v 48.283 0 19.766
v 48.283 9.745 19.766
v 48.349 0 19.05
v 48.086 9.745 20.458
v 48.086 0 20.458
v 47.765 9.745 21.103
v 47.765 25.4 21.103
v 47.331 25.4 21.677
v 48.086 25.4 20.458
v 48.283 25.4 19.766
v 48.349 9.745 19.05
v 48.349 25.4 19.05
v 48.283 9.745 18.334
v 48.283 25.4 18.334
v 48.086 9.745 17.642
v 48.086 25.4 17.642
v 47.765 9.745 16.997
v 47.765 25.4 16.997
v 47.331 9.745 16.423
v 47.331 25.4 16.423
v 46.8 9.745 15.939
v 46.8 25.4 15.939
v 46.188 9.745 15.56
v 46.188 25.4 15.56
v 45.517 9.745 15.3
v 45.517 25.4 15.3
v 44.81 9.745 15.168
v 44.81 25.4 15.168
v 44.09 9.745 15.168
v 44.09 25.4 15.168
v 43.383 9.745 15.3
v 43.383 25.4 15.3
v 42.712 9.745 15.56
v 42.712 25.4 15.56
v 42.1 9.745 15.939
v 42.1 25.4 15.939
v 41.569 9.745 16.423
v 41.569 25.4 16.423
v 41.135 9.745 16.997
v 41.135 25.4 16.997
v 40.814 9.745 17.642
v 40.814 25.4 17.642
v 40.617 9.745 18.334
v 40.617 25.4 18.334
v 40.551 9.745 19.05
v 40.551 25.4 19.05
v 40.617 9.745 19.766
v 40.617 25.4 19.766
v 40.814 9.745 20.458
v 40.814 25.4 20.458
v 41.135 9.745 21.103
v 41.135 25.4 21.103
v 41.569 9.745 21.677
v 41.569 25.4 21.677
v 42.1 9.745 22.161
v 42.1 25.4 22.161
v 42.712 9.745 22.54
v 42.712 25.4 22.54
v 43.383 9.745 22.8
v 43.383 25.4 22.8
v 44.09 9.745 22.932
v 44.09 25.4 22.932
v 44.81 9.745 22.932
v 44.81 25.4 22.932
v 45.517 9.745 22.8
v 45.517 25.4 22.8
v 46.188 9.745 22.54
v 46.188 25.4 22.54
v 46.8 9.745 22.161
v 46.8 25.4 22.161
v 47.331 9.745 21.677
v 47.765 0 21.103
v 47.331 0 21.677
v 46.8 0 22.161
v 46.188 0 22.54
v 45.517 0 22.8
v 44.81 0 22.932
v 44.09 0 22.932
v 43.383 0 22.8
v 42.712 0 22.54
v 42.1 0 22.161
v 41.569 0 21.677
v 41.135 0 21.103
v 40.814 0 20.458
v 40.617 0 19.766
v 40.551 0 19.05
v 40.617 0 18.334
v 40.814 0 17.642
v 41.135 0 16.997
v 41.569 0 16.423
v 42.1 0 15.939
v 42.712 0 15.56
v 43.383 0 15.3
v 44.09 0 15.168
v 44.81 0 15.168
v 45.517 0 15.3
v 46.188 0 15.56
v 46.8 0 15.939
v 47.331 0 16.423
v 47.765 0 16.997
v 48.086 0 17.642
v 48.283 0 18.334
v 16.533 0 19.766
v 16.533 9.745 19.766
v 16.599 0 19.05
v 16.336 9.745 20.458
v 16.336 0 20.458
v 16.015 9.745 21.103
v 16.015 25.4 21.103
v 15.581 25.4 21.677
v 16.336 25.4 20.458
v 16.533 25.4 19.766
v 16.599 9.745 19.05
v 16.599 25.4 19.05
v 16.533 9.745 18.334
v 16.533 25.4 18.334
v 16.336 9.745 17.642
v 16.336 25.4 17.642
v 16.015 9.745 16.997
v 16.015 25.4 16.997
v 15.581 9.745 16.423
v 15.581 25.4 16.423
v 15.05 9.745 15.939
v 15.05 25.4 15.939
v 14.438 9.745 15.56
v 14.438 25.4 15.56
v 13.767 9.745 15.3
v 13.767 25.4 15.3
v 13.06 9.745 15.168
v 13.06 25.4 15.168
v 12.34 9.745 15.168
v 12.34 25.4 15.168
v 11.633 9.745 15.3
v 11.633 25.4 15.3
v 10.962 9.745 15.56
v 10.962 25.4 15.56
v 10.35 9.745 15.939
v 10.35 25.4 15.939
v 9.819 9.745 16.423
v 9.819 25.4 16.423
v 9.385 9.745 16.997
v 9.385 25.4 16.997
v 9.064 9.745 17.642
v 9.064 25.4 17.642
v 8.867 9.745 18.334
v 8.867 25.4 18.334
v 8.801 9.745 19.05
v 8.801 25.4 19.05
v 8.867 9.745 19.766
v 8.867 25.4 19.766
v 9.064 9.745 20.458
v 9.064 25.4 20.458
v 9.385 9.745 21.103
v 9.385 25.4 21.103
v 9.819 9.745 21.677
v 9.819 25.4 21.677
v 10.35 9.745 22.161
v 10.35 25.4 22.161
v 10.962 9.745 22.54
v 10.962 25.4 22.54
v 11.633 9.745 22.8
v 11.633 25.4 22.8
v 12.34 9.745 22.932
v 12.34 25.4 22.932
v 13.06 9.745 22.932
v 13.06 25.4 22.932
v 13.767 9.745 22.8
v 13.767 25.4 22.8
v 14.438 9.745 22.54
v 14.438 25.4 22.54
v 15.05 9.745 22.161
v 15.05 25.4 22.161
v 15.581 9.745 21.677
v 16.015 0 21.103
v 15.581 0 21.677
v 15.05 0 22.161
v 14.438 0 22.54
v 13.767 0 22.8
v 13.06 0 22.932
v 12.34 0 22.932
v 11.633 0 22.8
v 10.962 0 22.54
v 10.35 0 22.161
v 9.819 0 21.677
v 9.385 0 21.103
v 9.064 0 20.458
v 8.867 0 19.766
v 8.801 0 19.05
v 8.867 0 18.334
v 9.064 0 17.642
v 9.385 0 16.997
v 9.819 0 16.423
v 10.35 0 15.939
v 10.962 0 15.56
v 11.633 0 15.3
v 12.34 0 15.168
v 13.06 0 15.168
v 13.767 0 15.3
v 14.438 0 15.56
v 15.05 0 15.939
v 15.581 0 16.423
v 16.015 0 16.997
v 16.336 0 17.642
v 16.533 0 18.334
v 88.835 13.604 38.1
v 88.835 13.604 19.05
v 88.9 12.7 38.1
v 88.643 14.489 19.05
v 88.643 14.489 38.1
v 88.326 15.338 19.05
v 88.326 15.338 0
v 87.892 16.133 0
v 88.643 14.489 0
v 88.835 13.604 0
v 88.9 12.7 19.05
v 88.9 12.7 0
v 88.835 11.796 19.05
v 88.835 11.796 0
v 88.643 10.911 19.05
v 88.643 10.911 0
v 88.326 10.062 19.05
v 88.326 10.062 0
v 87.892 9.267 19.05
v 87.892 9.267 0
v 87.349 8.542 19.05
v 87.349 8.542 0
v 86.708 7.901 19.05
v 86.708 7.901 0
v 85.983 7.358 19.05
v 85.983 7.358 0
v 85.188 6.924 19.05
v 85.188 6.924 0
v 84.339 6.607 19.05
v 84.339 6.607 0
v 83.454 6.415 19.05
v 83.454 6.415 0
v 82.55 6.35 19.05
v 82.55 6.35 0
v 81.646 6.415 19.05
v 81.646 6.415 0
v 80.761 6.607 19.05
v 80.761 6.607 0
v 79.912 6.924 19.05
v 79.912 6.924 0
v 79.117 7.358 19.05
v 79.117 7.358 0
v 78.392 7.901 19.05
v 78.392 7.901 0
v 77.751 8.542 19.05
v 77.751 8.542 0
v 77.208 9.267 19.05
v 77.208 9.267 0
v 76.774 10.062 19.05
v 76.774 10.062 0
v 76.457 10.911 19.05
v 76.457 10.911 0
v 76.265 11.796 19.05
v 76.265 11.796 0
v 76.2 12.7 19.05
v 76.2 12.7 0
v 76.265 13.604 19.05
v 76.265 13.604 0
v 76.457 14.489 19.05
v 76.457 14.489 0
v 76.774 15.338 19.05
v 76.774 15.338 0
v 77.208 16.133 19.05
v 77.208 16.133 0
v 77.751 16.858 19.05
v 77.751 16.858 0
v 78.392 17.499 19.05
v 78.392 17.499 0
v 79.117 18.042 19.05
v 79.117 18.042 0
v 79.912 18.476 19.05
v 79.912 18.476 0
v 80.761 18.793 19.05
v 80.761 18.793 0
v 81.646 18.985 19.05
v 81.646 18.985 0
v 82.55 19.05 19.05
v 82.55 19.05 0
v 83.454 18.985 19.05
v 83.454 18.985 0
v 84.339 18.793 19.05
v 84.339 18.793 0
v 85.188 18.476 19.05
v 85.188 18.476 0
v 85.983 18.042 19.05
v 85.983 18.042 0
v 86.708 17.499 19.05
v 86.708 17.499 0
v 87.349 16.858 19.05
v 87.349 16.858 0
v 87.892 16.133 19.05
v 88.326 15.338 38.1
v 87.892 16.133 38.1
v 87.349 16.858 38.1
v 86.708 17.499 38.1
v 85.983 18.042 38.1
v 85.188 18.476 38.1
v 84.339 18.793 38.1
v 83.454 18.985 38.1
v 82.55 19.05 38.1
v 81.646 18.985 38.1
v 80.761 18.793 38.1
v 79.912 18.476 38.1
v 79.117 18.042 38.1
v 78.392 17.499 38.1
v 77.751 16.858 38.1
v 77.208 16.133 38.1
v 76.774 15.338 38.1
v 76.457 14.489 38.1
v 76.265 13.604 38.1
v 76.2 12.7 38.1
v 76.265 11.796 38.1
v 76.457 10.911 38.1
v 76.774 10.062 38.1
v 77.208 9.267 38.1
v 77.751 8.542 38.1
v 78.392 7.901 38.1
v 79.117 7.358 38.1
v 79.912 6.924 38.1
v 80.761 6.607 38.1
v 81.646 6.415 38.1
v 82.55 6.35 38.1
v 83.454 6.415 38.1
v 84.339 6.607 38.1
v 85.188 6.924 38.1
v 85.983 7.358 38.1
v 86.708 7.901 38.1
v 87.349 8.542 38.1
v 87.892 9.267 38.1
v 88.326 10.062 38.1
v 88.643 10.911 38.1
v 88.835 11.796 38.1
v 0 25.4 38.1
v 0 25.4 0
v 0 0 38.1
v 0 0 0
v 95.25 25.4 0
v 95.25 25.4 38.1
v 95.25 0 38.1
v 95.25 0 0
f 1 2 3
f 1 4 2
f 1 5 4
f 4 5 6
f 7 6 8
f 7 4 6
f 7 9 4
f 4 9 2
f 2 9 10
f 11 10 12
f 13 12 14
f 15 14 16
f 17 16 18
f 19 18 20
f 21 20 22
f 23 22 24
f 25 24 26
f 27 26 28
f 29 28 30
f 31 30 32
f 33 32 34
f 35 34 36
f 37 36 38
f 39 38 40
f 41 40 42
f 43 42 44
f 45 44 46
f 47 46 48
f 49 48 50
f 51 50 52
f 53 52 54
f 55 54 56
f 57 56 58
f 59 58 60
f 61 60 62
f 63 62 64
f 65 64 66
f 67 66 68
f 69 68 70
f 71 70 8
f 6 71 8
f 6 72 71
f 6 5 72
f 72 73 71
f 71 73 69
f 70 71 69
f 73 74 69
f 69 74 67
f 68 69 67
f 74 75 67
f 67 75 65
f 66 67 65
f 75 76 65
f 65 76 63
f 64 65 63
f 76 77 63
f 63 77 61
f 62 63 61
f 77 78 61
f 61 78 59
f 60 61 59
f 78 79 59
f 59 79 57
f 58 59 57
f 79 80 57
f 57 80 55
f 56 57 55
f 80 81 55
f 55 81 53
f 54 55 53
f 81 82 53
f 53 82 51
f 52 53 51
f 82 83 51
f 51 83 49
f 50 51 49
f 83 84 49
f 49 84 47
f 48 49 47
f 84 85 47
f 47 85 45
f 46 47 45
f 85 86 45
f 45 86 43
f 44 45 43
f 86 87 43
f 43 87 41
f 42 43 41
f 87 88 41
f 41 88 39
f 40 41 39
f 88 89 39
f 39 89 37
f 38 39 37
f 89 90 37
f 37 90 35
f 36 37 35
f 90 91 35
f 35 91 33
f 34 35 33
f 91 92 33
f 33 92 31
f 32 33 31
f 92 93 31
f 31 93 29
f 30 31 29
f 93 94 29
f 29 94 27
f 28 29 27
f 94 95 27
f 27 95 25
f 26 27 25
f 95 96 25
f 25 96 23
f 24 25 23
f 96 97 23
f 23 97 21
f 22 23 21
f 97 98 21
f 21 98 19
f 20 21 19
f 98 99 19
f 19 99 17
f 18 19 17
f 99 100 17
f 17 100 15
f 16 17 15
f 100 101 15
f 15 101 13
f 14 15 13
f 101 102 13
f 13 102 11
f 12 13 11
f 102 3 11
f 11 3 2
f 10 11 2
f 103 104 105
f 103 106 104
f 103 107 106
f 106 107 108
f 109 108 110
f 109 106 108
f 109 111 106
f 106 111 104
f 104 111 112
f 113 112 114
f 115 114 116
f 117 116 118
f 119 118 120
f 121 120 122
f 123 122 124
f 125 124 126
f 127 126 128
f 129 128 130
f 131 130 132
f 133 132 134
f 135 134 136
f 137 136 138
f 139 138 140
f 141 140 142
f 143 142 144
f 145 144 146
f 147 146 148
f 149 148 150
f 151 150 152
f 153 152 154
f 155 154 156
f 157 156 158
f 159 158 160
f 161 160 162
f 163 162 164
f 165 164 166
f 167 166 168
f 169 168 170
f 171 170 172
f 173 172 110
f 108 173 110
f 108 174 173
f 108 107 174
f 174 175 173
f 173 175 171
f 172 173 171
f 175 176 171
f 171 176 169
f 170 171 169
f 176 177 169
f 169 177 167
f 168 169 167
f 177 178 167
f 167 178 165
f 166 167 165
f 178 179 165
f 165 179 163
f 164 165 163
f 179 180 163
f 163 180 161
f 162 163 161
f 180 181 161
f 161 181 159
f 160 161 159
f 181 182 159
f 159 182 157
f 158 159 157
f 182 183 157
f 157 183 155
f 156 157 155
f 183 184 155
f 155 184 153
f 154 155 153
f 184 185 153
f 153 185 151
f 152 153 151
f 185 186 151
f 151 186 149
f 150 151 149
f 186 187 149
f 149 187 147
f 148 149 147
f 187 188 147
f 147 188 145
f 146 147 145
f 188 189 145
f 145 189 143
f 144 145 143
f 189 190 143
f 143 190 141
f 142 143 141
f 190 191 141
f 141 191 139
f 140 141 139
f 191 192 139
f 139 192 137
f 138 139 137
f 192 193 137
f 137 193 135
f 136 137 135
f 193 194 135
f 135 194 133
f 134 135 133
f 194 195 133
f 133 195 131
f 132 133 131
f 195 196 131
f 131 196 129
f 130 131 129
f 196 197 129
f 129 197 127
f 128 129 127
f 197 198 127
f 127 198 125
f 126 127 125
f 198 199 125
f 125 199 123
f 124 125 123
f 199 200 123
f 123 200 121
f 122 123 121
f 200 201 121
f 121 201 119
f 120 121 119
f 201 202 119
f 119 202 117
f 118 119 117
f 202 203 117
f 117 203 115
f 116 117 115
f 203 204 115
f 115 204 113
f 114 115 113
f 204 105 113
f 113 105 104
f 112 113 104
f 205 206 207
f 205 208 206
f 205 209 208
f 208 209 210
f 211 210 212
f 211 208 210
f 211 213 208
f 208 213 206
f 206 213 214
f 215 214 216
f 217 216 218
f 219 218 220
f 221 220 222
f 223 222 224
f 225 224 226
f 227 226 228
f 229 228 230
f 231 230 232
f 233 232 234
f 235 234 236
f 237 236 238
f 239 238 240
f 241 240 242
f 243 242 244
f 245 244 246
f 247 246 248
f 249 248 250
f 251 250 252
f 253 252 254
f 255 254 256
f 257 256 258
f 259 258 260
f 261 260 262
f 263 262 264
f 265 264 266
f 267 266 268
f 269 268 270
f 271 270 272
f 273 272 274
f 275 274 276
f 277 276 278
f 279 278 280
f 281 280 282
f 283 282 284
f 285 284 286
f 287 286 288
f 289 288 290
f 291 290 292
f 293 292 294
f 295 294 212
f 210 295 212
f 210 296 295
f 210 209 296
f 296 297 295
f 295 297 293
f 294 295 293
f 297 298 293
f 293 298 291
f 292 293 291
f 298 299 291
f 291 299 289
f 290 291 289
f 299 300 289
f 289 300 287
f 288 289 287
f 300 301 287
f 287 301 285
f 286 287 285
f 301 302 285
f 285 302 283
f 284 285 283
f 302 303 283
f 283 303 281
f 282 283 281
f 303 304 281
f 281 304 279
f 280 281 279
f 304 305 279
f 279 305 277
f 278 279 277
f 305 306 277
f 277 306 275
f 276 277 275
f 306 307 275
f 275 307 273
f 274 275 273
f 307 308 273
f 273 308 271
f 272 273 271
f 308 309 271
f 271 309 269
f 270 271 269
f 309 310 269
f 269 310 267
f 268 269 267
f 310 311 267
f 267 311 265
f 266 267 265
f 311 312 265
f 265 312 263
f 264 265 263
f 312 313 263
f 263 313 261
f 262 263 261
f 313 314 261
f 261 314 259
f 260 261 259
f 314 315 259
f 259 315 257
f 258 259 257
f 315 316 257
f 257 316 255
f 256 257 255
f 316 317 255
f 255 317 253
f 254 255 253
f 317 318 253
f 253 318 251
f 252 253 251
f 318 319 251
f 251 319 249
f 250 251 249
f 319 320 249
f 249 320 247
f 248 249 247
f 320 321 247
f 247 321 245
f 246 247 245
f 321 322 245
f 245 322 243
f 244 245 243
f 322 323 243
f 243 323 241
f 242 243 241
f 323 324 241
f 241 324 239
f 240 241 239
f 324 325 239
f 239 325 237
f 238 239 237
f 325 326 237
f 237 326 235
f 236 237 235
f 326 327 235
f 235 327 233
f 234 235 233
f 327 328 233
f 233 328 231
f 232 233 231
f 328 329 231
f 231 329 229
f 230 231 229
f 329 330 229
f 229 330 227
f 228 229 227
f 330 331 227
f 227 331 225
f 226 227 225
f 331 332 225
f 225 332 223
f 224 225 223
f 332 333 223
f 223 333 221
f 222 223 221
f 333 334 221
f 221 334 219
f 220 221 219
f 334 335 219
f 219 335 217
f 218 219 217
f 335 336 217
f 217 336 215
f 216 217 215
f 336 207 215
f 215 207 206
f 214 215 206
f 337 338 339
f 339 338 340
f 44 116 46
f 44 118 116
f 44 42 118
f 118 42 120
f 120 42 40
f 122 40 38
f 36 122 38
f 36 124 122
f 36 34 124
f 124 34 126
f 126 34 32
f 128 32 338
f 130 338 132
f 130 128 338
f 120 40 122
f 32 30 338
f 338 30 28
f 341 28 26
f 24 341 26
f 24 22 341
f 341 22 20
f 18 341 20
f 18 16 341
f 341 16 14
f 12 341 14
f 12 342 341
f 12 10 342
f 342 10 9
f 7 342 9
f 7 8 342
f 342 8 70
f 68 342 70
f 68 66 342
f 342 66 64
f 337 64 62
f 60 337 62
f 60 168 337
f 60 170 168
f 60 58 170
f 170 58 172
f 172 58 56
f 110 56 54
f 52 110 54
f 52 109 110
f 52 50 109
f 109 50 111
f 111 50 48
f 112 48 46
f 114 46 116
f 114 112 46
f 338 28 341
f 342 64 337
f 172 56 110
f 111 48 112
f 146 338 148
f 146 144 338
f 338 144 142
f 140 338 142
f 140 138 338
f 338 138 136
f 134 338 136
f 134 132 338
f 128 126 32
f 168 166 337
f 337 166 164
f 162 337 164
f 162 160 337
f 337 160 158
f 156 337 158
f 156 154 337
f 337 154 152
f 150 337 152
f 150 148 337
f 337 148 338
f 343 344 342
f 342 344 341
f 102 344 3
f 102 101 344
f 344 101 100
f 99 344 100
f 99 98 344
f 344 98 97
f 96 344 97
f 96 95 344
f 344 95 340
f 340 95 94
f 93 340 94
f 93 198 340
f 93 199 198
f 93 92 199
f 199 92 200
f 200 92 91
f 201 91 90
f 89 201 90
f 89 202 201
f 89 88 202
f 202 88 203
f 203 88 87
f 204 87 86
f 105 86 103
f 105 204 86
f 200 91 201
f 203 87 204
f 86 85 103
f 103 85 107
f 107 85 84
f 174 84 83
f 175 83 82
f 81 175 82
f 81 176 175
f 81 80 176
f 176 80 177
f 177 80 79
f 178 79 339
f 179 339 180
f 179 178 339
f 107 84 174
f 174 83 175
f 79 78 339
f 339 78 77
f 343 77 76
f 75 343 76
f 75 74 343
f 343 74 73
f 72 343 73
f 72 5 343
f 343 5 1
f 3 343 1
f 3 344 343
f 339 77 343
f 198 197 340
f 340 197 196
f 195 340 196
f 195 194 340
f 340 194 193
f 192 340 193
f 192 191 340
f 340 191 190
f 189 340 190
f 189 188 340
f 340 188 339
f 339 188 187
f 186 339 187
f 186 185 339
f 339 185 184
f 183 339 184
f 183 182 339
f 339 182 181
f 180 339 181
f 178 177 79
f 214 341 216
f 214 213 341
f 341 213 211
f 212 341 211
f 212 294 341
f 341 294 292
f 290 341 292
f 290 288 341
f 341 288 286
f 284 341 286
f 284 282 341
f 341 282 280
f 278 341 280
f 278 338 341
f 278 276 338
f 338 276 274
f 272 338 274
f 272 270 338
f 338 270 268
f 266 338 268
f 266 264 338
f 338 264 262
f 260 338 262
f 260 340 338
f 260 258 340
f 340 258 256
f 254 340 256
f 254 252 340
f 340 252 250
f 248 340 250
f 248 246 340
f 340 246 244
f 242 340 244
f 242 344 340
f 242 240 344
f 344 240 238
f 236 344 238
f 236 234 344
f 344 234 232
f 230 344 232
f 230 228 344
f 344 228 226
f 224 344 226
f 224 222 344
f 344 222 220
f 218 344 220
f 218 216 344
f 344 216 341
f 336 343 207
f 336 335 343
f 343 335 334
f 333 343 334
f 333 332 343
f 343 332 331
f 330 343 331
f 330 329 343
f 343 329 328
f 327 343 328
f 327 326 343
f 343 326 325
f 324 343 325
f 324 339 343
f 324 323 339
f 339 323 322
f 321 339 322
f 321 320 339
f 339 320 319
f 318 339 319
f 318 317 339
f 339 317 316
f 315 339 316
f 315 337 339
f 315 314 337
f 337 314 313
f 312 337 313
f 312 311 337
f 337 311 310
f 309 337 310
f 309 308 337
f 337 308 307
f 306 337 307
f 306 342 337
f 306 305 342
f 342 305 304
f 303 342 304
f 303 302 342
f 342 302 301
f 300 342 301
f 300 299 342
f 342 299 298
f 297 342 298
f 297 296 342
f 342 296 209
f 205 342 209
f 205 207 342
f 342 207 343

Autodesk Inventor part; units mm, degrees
ref_plane "YZ Plane" through (0, 0, 0) normal (1, 0, 0) x (0, 1, 0)
ref_plane "XZ Plane" through (0, 0, 0) normal (0, 1, 0) x (-1, 0, 0)
ref_plane "XY Plane" through (0, 0, 0) normal (0, 0, 1) x (1, 0, 0)
sketch "Sketch1" plane through (0, 0, 0) normal (0, 0, 1) x (1, 0, 0)
  line L0 (0, 0) -> (95.25, 0)
  line L1 (95.25, 0) -> (95.25, 25.4)
  line L2 (95.25, 25.4) -> (0, 25.4)
  line L3 (0, 25.4) -> (0, 0)
  circle A0 centre (82.55, 12.7) radius 6.35
  dimension "d0" = 25.4
  dimension "d1" = 95.25
  dimension "d2" = 12.7
  dimension "d3" = 12.7
  dimension "d4" = 12.7
extrude "Extrusion1" add sketch "Sketch1" along normal blind 38.1
hole "Hole1" at (12.7, 25.4, 19.05) direction (0, -1, 0) diameter 7.7978 end through all thread size "3/8-16 UNC" class "2B" standard "ANSI Unified Screw Threads"
pattern_linear "Rectangular Pattern1" count 2 spacing 31.75 along (1, 0, 0) of "Hole1"
equation "\"d3\" = 0.5 * d0"
equation "\"d4\" = d3"
properties part number "GE-12023"
